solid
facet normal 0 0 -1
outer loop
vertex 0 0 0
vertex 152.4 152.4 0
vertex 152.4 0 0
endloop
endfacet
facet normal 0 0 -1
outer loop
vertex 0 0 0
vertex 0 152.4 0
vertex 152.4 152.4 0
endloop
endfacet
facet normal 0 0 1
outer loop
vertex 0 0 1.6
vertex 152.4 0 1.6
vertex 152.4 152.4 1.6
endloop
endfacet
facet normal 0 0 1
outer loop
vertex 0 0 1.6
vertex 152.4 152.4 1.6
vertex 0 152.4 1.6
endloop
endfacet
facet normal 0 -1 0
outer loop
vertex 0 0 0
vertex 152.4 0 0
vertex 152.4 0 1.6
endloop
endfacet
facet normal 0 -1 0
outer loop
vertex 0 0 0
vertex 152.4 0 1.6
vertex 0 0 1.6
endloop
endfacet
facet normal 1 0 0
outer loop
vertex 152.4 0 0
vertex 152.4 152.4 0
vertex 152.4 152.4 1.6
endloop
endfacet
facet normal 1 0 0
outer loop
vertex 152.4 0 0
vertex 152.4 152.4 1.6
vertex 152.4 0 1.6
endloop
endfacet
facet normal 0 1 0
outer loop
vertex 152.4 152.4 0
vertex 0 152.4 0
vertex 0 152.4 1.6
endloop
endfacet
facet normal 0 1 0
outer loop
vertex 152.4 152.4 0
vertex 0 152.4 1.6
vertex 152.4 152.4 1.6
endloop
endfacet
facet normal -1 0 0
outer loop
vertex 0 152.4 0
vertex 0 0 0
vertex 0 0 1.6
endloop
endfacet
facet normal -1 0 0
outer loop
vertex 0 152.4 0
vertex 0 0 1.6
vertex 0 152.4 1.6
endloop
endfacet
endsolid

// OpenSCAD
// Dimensions in millimetres. Print flat at 100% scale.
cube([152.4, 152.4, 1.6]);
